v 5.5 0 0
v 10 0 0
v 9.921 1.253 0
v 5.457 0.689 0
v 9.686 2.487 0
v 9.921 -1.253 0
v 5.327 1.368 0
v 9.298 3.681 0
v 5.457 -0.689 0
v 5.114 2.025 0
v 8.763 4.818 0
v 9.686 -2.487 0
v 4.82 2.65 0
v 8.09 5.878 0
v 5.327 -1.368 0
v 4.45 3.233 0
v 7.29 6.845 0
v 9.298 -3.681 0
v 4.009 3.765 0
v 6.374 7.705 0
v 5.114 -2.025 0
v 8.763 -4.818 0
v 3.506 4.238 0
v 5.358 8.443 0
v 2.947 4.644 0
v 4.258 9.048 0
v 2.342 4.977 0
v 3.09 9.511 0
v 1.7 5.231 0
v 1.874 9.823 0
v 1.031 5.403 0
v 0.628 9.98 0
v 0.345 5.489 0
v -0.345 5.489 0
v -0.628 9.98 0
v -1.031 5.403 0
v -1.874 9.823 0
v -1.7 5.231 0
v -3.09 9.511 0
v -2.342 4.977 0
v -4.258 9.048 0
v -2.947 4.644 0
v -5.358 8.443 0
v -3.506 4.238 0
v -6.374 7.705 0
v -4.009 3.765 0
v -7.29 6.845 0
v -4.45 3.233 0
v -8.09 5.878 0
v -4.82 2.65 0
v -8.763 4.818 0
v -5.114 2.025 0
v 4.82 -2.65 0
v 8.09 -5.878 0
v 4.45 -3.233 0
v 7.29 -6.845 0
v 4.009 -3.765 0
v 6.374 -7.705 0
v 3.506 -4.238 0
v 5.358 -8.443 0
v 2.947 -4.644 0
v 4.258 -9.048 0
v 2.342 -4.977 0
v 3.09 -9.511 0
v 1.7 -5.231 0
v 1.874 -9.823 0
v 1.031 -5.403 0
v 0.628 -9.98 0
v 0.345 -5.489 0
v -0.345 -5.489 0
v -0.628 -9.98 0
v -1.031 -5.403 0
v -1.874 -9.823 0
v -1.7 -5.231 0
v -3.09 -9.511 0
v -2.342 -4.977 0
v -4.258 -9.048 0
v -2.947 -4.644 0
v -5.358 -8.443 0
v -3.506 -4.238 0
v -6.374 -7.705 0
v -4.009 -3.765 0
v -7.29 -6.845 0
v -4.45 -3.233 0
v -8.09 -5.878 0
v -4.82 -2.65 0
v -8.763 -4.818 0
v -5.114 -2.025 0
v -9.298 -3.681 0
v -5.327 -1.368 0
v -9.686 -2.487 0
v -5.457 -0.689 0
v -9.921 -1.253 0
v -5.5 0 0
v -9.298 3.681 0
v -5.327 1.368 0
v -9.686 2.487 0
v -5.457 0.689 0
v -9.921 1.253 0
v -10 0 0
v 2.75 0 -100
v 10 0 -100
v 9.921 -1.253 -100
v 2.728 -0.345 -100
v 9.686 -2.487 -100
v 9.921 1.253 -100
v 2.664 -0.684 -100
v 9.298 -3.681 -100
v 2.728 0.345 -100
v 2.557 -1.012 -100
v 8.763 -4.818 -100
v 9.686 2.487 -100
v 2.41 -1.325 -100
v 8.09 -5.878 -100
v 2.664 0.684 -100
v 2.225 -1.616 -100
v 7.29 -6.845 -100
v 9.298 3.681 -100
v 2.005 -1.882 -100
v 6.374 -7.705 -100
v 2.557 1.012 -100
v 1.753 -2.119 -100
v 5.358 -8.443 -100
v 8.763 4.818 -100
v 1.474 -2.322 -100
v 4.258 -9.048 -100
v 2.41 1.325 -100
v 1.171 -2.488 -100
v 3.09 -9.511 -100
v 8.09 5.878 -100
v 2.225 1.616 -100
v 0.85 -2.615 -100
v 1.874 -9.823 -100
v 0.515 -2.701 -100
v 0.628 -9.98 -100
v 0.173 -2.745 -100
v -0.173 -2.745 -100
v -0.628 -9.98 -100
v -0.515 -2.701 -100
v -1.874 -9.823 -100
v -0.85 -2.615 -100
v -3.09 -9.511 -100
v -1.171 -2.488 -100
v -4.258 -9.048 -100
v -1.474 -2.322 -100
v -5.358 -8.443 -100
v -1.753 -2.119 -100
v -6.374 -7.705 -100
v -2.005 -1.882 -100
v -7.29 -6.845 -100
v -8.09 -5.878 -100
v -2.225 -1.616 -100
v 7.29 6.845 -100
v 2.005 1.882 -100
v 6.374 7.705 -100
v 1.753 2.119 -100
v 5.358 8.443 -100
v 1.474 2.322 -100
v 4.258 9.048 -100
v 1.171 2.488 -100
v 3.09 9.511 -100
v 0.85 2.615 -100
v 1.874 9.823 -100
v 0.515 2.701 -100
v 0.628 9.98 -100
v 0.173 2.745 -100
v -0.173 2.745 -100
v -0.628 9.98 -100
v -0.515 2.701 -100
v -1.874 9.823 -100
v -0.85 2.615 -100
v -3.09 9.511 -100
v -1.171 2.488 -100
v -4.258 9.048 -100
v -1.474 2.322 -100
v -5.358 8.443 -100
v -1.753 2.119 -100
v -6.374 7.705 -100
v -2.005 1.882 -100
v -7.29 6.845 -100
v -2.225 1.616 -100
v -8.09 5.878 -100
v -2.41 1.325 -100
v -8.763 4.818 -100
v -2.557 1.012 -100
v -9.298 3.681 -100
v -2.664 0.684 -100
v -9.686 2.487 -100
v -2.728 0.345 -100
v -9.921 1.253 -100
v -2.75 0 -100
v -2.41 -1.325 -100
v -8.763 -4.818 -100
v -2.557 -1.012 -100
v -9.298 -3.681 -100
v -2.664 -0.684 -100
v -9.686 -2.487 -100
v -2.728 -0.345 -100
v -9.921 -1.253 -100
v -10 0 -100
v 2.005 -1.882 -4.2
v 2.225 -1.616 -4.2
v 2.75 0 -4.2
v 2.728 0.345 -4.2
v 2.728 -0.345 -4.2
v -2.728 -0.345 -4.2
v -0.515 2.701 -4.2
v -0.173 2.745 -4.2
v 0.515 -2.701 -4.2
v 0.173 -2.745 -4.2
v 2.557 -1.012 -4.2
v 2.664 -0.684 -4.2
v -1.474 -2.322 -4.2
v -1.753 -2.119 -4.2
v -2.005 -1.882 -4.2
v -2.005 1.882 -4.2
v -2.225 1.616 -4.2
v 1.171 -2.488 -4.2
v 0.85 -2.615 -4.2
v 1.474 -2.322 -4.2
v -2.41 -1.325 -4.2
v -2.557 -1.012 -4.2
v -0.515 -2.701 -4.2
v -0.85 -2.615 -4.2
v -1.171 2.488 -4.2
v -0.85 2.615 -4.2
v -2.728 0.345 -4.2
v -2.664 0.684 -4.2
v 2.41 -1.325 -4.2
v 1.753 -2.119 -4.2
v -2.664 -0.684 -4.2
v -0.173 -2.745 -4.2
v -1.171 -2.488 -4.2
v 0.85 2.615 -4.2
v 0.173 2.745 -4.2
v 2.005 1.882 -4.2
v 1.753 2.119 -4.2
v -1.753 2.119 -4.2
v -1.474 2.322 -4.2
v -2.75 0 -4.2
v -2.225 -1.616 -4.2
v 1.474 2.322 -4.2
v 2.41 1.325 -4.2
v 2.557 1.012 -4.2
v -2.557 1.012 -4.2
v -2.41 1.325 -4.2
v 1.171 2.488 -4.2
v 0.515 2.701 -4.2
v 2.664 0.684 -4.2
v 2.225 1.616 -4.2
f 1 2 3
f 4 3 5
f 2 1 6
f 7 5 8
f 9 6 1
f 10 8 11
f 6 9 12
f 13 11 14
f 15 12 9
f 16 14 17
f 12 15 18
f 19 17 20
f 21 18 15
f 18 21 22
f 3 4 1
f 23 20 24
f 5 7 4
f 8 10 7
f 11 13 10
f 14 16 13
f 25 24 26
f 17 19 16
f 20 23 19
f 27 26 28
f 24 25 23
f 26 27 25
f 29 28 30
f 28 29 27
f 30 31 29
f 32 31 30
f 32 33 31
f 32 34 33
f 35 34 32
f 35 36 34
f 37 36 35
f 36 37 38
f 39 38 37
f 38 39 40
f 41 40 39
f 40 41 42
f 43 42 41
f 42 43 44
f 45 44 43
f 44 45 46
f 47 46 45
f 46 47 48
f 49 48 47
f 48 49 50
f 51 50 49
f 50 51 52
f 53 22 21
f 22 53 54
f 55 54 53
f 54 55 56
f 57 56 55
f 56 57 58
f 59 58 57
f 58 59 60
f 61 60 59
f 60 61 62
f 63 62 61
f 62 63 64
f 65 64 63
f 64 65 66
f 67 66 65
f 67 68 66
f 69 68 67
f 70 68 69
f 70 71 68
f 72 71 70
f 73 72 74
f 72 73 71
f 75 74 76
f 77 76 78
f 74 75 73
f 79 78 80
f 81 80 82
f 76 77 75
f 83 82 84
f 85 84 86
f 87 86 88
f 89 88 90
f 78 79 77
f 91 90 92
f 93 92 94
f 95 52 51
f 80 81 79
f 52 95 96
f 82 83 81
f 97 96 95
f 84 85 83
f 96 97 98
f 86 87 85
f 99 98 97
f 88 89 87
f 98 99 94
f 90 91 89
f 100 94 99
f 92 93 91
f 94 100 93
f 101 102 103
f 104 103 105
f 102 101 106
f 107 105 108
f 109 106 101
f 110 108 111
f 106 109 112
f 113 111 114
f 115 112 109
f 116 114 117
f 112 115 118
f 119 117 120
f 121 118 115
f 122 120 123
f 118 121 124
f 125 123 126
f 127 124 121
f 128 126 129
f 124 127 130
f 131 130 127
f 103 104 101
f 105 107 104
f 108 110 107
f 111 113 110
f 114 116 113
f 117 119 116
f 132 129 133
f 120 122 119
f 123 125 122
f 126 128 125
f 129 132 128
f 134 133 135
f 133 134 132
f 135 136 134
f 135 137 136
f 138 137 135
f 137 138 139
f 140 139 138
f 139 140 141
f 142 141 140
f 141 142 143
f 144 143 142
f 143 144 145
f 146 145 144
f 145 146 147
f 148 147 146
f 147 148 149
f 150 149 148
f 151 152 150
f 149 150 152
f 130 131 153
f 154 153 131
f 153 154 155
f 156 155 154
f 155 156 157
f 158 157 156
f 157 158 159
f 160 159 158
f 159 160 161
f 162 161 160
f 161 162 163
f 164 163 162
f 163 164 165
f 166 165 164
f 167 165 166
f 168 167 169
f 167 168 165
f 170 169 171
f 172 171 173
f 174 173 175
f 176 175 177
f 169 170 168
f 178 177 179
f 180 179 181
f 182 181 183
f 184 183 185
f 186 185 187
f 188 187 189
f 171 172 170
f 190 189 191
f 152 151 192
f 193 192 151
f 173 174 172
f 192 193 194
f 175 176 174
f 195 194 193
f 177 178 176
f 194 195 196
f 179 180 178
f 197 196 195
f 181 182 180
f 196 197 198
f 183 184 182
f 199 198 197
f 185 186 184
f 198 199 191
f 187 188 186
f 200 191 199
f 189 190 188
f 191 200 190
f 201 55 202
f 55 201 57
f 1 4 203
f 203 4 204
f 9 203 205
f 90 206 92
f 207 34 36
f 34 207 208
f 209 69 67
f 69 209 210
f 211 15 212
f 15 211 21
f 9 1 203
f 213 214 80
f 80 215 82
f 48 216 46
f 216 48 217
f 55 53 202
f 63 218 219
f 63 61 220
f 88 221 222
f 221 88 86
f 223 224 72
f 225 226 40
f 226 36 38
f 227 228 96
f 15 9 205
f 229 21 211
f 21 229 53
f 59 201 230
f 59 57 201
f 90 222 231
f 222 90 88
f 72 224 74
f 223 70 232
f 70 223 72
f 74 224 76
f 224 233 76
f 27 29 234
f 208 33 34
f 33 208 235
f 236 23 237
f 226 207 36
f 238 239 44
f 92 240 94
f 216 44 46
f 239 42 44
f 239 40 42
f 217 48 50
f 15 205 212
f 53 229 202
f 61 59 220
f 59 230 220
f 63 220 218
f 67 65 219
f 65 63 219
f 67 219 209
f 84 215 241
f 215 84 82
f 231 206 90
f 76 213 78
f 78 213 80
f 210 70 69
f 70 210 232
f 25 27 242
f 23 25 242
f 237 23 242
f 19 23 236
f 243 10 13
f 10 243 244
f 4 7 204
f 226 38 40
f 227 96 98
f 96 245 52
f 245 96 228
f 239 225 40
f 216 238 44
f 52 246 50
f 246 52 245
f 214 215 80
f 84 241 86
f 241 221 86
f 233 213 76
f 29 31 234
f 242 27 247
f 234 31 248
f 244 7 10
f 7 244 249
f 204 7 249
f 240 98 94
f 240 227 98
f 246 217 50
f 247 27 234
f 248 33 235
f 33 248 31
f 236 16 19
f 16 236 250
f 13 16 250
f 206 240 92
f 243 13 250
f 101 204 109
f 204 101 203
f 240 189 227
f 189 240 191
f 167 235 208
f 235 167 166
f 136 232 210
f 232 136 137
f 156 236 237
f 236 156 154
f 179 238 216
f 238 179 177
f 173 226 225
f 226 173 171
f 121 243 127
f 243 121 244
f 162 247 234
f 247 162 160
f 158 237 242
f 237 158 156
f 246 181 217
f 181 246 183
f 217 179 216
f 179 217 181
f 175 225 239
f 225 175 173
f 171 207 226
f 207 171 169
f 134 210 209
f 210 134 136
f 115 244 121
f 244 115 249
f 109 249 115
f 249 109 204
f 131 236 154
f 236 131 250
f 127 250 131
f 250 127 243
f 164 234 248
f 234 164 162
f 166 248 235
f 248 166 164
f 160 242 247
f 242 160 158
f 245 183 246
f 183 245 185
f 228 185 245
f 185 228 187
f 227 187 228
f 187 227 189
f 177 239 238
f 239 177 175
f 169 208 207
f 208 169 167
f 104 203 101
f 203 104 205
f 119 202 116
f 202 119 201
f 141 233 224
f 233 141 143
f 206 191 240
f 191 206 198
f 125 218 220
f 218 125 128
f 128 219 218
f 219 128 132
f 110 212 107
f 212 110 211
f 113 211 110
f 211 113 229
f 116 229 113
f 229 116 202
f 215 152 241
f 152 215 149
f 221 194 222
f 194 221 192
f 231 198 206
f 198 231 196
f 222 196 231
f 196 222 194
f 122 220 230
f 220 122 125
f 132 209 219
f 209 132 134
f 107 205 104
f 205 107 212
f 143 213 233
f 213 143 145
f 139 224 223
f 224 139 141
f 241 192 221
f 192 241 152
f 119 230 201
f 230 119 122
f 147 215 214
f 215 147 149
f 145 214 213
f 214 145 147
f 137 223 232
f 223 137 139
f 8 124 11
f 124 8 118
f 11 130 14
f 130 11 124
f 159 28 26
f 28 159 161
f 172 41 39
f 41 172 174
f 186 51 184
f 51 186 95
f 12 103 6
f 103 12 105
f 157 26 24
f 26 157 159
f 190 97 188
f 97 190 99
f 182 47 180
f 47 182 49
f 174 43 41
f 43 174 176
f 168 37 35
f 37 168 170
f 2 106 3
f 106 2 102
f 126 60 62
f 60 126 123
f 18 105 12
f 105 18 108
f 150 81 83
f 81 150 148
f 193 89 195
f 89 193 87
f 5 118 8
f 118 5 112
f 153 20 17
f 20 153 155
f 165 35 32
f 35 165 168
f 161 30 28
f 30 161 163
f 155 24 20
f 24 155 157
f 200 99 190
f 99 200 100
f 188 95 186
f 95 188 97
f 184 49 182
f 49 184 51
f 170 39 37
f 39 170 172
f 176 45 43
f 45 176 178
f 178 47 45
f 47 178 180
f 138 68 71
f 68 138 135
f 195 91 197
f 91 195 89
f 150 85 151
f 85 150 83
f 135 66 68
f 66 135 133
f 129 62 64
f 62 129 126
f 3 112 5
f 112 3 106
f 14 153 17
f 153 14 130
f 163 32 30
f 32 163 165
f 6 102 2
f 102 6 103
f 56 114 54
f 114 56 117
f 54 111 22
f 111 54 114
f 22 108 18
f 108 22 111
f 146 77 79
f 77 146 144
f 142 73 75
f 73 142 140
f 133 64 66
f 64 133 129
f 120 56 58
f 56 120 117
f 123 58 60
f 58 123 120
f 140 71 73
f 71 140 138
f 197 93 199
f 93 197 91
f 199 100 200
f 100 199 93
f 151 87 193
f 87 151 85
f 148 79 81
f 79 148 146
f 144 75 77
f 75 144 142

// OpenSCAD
$fn = 50;


difference() {
	union() {
		translate(v = [0, 0, -100.0000000000]) {
			cylinder(h = 100, r = 10.0000000000);
		}
		cylinder(h = 0, r = 20.0000000000);
	}
	union() {
		translate(v = [0, 0, 0]) {
			rotate(a = [0, 0, 0]) {
				difference() {
					union() {
						#translate(v = [0, 0, -100.0000000000]) {
							cylinder(h = 100, r = 2.2500000000);
						}
						#translate(v = [0, 0, -4.2000000000]) {
							cylinder(h = 4.2000000000, r1 = 2.7500000000, r2 = 5.5000000000);
						}
						#translate(v = [0, 0, -100.0000000000]) {
							cylinder(h = 100, r = 2.7500000000);
						}
						#translate(v = [0, 0, -100.0000000000]) {
							cylinder(h = 100, r = 2.2500000000);
						}
					}
					union();
				}
			}
		}
	}
}
